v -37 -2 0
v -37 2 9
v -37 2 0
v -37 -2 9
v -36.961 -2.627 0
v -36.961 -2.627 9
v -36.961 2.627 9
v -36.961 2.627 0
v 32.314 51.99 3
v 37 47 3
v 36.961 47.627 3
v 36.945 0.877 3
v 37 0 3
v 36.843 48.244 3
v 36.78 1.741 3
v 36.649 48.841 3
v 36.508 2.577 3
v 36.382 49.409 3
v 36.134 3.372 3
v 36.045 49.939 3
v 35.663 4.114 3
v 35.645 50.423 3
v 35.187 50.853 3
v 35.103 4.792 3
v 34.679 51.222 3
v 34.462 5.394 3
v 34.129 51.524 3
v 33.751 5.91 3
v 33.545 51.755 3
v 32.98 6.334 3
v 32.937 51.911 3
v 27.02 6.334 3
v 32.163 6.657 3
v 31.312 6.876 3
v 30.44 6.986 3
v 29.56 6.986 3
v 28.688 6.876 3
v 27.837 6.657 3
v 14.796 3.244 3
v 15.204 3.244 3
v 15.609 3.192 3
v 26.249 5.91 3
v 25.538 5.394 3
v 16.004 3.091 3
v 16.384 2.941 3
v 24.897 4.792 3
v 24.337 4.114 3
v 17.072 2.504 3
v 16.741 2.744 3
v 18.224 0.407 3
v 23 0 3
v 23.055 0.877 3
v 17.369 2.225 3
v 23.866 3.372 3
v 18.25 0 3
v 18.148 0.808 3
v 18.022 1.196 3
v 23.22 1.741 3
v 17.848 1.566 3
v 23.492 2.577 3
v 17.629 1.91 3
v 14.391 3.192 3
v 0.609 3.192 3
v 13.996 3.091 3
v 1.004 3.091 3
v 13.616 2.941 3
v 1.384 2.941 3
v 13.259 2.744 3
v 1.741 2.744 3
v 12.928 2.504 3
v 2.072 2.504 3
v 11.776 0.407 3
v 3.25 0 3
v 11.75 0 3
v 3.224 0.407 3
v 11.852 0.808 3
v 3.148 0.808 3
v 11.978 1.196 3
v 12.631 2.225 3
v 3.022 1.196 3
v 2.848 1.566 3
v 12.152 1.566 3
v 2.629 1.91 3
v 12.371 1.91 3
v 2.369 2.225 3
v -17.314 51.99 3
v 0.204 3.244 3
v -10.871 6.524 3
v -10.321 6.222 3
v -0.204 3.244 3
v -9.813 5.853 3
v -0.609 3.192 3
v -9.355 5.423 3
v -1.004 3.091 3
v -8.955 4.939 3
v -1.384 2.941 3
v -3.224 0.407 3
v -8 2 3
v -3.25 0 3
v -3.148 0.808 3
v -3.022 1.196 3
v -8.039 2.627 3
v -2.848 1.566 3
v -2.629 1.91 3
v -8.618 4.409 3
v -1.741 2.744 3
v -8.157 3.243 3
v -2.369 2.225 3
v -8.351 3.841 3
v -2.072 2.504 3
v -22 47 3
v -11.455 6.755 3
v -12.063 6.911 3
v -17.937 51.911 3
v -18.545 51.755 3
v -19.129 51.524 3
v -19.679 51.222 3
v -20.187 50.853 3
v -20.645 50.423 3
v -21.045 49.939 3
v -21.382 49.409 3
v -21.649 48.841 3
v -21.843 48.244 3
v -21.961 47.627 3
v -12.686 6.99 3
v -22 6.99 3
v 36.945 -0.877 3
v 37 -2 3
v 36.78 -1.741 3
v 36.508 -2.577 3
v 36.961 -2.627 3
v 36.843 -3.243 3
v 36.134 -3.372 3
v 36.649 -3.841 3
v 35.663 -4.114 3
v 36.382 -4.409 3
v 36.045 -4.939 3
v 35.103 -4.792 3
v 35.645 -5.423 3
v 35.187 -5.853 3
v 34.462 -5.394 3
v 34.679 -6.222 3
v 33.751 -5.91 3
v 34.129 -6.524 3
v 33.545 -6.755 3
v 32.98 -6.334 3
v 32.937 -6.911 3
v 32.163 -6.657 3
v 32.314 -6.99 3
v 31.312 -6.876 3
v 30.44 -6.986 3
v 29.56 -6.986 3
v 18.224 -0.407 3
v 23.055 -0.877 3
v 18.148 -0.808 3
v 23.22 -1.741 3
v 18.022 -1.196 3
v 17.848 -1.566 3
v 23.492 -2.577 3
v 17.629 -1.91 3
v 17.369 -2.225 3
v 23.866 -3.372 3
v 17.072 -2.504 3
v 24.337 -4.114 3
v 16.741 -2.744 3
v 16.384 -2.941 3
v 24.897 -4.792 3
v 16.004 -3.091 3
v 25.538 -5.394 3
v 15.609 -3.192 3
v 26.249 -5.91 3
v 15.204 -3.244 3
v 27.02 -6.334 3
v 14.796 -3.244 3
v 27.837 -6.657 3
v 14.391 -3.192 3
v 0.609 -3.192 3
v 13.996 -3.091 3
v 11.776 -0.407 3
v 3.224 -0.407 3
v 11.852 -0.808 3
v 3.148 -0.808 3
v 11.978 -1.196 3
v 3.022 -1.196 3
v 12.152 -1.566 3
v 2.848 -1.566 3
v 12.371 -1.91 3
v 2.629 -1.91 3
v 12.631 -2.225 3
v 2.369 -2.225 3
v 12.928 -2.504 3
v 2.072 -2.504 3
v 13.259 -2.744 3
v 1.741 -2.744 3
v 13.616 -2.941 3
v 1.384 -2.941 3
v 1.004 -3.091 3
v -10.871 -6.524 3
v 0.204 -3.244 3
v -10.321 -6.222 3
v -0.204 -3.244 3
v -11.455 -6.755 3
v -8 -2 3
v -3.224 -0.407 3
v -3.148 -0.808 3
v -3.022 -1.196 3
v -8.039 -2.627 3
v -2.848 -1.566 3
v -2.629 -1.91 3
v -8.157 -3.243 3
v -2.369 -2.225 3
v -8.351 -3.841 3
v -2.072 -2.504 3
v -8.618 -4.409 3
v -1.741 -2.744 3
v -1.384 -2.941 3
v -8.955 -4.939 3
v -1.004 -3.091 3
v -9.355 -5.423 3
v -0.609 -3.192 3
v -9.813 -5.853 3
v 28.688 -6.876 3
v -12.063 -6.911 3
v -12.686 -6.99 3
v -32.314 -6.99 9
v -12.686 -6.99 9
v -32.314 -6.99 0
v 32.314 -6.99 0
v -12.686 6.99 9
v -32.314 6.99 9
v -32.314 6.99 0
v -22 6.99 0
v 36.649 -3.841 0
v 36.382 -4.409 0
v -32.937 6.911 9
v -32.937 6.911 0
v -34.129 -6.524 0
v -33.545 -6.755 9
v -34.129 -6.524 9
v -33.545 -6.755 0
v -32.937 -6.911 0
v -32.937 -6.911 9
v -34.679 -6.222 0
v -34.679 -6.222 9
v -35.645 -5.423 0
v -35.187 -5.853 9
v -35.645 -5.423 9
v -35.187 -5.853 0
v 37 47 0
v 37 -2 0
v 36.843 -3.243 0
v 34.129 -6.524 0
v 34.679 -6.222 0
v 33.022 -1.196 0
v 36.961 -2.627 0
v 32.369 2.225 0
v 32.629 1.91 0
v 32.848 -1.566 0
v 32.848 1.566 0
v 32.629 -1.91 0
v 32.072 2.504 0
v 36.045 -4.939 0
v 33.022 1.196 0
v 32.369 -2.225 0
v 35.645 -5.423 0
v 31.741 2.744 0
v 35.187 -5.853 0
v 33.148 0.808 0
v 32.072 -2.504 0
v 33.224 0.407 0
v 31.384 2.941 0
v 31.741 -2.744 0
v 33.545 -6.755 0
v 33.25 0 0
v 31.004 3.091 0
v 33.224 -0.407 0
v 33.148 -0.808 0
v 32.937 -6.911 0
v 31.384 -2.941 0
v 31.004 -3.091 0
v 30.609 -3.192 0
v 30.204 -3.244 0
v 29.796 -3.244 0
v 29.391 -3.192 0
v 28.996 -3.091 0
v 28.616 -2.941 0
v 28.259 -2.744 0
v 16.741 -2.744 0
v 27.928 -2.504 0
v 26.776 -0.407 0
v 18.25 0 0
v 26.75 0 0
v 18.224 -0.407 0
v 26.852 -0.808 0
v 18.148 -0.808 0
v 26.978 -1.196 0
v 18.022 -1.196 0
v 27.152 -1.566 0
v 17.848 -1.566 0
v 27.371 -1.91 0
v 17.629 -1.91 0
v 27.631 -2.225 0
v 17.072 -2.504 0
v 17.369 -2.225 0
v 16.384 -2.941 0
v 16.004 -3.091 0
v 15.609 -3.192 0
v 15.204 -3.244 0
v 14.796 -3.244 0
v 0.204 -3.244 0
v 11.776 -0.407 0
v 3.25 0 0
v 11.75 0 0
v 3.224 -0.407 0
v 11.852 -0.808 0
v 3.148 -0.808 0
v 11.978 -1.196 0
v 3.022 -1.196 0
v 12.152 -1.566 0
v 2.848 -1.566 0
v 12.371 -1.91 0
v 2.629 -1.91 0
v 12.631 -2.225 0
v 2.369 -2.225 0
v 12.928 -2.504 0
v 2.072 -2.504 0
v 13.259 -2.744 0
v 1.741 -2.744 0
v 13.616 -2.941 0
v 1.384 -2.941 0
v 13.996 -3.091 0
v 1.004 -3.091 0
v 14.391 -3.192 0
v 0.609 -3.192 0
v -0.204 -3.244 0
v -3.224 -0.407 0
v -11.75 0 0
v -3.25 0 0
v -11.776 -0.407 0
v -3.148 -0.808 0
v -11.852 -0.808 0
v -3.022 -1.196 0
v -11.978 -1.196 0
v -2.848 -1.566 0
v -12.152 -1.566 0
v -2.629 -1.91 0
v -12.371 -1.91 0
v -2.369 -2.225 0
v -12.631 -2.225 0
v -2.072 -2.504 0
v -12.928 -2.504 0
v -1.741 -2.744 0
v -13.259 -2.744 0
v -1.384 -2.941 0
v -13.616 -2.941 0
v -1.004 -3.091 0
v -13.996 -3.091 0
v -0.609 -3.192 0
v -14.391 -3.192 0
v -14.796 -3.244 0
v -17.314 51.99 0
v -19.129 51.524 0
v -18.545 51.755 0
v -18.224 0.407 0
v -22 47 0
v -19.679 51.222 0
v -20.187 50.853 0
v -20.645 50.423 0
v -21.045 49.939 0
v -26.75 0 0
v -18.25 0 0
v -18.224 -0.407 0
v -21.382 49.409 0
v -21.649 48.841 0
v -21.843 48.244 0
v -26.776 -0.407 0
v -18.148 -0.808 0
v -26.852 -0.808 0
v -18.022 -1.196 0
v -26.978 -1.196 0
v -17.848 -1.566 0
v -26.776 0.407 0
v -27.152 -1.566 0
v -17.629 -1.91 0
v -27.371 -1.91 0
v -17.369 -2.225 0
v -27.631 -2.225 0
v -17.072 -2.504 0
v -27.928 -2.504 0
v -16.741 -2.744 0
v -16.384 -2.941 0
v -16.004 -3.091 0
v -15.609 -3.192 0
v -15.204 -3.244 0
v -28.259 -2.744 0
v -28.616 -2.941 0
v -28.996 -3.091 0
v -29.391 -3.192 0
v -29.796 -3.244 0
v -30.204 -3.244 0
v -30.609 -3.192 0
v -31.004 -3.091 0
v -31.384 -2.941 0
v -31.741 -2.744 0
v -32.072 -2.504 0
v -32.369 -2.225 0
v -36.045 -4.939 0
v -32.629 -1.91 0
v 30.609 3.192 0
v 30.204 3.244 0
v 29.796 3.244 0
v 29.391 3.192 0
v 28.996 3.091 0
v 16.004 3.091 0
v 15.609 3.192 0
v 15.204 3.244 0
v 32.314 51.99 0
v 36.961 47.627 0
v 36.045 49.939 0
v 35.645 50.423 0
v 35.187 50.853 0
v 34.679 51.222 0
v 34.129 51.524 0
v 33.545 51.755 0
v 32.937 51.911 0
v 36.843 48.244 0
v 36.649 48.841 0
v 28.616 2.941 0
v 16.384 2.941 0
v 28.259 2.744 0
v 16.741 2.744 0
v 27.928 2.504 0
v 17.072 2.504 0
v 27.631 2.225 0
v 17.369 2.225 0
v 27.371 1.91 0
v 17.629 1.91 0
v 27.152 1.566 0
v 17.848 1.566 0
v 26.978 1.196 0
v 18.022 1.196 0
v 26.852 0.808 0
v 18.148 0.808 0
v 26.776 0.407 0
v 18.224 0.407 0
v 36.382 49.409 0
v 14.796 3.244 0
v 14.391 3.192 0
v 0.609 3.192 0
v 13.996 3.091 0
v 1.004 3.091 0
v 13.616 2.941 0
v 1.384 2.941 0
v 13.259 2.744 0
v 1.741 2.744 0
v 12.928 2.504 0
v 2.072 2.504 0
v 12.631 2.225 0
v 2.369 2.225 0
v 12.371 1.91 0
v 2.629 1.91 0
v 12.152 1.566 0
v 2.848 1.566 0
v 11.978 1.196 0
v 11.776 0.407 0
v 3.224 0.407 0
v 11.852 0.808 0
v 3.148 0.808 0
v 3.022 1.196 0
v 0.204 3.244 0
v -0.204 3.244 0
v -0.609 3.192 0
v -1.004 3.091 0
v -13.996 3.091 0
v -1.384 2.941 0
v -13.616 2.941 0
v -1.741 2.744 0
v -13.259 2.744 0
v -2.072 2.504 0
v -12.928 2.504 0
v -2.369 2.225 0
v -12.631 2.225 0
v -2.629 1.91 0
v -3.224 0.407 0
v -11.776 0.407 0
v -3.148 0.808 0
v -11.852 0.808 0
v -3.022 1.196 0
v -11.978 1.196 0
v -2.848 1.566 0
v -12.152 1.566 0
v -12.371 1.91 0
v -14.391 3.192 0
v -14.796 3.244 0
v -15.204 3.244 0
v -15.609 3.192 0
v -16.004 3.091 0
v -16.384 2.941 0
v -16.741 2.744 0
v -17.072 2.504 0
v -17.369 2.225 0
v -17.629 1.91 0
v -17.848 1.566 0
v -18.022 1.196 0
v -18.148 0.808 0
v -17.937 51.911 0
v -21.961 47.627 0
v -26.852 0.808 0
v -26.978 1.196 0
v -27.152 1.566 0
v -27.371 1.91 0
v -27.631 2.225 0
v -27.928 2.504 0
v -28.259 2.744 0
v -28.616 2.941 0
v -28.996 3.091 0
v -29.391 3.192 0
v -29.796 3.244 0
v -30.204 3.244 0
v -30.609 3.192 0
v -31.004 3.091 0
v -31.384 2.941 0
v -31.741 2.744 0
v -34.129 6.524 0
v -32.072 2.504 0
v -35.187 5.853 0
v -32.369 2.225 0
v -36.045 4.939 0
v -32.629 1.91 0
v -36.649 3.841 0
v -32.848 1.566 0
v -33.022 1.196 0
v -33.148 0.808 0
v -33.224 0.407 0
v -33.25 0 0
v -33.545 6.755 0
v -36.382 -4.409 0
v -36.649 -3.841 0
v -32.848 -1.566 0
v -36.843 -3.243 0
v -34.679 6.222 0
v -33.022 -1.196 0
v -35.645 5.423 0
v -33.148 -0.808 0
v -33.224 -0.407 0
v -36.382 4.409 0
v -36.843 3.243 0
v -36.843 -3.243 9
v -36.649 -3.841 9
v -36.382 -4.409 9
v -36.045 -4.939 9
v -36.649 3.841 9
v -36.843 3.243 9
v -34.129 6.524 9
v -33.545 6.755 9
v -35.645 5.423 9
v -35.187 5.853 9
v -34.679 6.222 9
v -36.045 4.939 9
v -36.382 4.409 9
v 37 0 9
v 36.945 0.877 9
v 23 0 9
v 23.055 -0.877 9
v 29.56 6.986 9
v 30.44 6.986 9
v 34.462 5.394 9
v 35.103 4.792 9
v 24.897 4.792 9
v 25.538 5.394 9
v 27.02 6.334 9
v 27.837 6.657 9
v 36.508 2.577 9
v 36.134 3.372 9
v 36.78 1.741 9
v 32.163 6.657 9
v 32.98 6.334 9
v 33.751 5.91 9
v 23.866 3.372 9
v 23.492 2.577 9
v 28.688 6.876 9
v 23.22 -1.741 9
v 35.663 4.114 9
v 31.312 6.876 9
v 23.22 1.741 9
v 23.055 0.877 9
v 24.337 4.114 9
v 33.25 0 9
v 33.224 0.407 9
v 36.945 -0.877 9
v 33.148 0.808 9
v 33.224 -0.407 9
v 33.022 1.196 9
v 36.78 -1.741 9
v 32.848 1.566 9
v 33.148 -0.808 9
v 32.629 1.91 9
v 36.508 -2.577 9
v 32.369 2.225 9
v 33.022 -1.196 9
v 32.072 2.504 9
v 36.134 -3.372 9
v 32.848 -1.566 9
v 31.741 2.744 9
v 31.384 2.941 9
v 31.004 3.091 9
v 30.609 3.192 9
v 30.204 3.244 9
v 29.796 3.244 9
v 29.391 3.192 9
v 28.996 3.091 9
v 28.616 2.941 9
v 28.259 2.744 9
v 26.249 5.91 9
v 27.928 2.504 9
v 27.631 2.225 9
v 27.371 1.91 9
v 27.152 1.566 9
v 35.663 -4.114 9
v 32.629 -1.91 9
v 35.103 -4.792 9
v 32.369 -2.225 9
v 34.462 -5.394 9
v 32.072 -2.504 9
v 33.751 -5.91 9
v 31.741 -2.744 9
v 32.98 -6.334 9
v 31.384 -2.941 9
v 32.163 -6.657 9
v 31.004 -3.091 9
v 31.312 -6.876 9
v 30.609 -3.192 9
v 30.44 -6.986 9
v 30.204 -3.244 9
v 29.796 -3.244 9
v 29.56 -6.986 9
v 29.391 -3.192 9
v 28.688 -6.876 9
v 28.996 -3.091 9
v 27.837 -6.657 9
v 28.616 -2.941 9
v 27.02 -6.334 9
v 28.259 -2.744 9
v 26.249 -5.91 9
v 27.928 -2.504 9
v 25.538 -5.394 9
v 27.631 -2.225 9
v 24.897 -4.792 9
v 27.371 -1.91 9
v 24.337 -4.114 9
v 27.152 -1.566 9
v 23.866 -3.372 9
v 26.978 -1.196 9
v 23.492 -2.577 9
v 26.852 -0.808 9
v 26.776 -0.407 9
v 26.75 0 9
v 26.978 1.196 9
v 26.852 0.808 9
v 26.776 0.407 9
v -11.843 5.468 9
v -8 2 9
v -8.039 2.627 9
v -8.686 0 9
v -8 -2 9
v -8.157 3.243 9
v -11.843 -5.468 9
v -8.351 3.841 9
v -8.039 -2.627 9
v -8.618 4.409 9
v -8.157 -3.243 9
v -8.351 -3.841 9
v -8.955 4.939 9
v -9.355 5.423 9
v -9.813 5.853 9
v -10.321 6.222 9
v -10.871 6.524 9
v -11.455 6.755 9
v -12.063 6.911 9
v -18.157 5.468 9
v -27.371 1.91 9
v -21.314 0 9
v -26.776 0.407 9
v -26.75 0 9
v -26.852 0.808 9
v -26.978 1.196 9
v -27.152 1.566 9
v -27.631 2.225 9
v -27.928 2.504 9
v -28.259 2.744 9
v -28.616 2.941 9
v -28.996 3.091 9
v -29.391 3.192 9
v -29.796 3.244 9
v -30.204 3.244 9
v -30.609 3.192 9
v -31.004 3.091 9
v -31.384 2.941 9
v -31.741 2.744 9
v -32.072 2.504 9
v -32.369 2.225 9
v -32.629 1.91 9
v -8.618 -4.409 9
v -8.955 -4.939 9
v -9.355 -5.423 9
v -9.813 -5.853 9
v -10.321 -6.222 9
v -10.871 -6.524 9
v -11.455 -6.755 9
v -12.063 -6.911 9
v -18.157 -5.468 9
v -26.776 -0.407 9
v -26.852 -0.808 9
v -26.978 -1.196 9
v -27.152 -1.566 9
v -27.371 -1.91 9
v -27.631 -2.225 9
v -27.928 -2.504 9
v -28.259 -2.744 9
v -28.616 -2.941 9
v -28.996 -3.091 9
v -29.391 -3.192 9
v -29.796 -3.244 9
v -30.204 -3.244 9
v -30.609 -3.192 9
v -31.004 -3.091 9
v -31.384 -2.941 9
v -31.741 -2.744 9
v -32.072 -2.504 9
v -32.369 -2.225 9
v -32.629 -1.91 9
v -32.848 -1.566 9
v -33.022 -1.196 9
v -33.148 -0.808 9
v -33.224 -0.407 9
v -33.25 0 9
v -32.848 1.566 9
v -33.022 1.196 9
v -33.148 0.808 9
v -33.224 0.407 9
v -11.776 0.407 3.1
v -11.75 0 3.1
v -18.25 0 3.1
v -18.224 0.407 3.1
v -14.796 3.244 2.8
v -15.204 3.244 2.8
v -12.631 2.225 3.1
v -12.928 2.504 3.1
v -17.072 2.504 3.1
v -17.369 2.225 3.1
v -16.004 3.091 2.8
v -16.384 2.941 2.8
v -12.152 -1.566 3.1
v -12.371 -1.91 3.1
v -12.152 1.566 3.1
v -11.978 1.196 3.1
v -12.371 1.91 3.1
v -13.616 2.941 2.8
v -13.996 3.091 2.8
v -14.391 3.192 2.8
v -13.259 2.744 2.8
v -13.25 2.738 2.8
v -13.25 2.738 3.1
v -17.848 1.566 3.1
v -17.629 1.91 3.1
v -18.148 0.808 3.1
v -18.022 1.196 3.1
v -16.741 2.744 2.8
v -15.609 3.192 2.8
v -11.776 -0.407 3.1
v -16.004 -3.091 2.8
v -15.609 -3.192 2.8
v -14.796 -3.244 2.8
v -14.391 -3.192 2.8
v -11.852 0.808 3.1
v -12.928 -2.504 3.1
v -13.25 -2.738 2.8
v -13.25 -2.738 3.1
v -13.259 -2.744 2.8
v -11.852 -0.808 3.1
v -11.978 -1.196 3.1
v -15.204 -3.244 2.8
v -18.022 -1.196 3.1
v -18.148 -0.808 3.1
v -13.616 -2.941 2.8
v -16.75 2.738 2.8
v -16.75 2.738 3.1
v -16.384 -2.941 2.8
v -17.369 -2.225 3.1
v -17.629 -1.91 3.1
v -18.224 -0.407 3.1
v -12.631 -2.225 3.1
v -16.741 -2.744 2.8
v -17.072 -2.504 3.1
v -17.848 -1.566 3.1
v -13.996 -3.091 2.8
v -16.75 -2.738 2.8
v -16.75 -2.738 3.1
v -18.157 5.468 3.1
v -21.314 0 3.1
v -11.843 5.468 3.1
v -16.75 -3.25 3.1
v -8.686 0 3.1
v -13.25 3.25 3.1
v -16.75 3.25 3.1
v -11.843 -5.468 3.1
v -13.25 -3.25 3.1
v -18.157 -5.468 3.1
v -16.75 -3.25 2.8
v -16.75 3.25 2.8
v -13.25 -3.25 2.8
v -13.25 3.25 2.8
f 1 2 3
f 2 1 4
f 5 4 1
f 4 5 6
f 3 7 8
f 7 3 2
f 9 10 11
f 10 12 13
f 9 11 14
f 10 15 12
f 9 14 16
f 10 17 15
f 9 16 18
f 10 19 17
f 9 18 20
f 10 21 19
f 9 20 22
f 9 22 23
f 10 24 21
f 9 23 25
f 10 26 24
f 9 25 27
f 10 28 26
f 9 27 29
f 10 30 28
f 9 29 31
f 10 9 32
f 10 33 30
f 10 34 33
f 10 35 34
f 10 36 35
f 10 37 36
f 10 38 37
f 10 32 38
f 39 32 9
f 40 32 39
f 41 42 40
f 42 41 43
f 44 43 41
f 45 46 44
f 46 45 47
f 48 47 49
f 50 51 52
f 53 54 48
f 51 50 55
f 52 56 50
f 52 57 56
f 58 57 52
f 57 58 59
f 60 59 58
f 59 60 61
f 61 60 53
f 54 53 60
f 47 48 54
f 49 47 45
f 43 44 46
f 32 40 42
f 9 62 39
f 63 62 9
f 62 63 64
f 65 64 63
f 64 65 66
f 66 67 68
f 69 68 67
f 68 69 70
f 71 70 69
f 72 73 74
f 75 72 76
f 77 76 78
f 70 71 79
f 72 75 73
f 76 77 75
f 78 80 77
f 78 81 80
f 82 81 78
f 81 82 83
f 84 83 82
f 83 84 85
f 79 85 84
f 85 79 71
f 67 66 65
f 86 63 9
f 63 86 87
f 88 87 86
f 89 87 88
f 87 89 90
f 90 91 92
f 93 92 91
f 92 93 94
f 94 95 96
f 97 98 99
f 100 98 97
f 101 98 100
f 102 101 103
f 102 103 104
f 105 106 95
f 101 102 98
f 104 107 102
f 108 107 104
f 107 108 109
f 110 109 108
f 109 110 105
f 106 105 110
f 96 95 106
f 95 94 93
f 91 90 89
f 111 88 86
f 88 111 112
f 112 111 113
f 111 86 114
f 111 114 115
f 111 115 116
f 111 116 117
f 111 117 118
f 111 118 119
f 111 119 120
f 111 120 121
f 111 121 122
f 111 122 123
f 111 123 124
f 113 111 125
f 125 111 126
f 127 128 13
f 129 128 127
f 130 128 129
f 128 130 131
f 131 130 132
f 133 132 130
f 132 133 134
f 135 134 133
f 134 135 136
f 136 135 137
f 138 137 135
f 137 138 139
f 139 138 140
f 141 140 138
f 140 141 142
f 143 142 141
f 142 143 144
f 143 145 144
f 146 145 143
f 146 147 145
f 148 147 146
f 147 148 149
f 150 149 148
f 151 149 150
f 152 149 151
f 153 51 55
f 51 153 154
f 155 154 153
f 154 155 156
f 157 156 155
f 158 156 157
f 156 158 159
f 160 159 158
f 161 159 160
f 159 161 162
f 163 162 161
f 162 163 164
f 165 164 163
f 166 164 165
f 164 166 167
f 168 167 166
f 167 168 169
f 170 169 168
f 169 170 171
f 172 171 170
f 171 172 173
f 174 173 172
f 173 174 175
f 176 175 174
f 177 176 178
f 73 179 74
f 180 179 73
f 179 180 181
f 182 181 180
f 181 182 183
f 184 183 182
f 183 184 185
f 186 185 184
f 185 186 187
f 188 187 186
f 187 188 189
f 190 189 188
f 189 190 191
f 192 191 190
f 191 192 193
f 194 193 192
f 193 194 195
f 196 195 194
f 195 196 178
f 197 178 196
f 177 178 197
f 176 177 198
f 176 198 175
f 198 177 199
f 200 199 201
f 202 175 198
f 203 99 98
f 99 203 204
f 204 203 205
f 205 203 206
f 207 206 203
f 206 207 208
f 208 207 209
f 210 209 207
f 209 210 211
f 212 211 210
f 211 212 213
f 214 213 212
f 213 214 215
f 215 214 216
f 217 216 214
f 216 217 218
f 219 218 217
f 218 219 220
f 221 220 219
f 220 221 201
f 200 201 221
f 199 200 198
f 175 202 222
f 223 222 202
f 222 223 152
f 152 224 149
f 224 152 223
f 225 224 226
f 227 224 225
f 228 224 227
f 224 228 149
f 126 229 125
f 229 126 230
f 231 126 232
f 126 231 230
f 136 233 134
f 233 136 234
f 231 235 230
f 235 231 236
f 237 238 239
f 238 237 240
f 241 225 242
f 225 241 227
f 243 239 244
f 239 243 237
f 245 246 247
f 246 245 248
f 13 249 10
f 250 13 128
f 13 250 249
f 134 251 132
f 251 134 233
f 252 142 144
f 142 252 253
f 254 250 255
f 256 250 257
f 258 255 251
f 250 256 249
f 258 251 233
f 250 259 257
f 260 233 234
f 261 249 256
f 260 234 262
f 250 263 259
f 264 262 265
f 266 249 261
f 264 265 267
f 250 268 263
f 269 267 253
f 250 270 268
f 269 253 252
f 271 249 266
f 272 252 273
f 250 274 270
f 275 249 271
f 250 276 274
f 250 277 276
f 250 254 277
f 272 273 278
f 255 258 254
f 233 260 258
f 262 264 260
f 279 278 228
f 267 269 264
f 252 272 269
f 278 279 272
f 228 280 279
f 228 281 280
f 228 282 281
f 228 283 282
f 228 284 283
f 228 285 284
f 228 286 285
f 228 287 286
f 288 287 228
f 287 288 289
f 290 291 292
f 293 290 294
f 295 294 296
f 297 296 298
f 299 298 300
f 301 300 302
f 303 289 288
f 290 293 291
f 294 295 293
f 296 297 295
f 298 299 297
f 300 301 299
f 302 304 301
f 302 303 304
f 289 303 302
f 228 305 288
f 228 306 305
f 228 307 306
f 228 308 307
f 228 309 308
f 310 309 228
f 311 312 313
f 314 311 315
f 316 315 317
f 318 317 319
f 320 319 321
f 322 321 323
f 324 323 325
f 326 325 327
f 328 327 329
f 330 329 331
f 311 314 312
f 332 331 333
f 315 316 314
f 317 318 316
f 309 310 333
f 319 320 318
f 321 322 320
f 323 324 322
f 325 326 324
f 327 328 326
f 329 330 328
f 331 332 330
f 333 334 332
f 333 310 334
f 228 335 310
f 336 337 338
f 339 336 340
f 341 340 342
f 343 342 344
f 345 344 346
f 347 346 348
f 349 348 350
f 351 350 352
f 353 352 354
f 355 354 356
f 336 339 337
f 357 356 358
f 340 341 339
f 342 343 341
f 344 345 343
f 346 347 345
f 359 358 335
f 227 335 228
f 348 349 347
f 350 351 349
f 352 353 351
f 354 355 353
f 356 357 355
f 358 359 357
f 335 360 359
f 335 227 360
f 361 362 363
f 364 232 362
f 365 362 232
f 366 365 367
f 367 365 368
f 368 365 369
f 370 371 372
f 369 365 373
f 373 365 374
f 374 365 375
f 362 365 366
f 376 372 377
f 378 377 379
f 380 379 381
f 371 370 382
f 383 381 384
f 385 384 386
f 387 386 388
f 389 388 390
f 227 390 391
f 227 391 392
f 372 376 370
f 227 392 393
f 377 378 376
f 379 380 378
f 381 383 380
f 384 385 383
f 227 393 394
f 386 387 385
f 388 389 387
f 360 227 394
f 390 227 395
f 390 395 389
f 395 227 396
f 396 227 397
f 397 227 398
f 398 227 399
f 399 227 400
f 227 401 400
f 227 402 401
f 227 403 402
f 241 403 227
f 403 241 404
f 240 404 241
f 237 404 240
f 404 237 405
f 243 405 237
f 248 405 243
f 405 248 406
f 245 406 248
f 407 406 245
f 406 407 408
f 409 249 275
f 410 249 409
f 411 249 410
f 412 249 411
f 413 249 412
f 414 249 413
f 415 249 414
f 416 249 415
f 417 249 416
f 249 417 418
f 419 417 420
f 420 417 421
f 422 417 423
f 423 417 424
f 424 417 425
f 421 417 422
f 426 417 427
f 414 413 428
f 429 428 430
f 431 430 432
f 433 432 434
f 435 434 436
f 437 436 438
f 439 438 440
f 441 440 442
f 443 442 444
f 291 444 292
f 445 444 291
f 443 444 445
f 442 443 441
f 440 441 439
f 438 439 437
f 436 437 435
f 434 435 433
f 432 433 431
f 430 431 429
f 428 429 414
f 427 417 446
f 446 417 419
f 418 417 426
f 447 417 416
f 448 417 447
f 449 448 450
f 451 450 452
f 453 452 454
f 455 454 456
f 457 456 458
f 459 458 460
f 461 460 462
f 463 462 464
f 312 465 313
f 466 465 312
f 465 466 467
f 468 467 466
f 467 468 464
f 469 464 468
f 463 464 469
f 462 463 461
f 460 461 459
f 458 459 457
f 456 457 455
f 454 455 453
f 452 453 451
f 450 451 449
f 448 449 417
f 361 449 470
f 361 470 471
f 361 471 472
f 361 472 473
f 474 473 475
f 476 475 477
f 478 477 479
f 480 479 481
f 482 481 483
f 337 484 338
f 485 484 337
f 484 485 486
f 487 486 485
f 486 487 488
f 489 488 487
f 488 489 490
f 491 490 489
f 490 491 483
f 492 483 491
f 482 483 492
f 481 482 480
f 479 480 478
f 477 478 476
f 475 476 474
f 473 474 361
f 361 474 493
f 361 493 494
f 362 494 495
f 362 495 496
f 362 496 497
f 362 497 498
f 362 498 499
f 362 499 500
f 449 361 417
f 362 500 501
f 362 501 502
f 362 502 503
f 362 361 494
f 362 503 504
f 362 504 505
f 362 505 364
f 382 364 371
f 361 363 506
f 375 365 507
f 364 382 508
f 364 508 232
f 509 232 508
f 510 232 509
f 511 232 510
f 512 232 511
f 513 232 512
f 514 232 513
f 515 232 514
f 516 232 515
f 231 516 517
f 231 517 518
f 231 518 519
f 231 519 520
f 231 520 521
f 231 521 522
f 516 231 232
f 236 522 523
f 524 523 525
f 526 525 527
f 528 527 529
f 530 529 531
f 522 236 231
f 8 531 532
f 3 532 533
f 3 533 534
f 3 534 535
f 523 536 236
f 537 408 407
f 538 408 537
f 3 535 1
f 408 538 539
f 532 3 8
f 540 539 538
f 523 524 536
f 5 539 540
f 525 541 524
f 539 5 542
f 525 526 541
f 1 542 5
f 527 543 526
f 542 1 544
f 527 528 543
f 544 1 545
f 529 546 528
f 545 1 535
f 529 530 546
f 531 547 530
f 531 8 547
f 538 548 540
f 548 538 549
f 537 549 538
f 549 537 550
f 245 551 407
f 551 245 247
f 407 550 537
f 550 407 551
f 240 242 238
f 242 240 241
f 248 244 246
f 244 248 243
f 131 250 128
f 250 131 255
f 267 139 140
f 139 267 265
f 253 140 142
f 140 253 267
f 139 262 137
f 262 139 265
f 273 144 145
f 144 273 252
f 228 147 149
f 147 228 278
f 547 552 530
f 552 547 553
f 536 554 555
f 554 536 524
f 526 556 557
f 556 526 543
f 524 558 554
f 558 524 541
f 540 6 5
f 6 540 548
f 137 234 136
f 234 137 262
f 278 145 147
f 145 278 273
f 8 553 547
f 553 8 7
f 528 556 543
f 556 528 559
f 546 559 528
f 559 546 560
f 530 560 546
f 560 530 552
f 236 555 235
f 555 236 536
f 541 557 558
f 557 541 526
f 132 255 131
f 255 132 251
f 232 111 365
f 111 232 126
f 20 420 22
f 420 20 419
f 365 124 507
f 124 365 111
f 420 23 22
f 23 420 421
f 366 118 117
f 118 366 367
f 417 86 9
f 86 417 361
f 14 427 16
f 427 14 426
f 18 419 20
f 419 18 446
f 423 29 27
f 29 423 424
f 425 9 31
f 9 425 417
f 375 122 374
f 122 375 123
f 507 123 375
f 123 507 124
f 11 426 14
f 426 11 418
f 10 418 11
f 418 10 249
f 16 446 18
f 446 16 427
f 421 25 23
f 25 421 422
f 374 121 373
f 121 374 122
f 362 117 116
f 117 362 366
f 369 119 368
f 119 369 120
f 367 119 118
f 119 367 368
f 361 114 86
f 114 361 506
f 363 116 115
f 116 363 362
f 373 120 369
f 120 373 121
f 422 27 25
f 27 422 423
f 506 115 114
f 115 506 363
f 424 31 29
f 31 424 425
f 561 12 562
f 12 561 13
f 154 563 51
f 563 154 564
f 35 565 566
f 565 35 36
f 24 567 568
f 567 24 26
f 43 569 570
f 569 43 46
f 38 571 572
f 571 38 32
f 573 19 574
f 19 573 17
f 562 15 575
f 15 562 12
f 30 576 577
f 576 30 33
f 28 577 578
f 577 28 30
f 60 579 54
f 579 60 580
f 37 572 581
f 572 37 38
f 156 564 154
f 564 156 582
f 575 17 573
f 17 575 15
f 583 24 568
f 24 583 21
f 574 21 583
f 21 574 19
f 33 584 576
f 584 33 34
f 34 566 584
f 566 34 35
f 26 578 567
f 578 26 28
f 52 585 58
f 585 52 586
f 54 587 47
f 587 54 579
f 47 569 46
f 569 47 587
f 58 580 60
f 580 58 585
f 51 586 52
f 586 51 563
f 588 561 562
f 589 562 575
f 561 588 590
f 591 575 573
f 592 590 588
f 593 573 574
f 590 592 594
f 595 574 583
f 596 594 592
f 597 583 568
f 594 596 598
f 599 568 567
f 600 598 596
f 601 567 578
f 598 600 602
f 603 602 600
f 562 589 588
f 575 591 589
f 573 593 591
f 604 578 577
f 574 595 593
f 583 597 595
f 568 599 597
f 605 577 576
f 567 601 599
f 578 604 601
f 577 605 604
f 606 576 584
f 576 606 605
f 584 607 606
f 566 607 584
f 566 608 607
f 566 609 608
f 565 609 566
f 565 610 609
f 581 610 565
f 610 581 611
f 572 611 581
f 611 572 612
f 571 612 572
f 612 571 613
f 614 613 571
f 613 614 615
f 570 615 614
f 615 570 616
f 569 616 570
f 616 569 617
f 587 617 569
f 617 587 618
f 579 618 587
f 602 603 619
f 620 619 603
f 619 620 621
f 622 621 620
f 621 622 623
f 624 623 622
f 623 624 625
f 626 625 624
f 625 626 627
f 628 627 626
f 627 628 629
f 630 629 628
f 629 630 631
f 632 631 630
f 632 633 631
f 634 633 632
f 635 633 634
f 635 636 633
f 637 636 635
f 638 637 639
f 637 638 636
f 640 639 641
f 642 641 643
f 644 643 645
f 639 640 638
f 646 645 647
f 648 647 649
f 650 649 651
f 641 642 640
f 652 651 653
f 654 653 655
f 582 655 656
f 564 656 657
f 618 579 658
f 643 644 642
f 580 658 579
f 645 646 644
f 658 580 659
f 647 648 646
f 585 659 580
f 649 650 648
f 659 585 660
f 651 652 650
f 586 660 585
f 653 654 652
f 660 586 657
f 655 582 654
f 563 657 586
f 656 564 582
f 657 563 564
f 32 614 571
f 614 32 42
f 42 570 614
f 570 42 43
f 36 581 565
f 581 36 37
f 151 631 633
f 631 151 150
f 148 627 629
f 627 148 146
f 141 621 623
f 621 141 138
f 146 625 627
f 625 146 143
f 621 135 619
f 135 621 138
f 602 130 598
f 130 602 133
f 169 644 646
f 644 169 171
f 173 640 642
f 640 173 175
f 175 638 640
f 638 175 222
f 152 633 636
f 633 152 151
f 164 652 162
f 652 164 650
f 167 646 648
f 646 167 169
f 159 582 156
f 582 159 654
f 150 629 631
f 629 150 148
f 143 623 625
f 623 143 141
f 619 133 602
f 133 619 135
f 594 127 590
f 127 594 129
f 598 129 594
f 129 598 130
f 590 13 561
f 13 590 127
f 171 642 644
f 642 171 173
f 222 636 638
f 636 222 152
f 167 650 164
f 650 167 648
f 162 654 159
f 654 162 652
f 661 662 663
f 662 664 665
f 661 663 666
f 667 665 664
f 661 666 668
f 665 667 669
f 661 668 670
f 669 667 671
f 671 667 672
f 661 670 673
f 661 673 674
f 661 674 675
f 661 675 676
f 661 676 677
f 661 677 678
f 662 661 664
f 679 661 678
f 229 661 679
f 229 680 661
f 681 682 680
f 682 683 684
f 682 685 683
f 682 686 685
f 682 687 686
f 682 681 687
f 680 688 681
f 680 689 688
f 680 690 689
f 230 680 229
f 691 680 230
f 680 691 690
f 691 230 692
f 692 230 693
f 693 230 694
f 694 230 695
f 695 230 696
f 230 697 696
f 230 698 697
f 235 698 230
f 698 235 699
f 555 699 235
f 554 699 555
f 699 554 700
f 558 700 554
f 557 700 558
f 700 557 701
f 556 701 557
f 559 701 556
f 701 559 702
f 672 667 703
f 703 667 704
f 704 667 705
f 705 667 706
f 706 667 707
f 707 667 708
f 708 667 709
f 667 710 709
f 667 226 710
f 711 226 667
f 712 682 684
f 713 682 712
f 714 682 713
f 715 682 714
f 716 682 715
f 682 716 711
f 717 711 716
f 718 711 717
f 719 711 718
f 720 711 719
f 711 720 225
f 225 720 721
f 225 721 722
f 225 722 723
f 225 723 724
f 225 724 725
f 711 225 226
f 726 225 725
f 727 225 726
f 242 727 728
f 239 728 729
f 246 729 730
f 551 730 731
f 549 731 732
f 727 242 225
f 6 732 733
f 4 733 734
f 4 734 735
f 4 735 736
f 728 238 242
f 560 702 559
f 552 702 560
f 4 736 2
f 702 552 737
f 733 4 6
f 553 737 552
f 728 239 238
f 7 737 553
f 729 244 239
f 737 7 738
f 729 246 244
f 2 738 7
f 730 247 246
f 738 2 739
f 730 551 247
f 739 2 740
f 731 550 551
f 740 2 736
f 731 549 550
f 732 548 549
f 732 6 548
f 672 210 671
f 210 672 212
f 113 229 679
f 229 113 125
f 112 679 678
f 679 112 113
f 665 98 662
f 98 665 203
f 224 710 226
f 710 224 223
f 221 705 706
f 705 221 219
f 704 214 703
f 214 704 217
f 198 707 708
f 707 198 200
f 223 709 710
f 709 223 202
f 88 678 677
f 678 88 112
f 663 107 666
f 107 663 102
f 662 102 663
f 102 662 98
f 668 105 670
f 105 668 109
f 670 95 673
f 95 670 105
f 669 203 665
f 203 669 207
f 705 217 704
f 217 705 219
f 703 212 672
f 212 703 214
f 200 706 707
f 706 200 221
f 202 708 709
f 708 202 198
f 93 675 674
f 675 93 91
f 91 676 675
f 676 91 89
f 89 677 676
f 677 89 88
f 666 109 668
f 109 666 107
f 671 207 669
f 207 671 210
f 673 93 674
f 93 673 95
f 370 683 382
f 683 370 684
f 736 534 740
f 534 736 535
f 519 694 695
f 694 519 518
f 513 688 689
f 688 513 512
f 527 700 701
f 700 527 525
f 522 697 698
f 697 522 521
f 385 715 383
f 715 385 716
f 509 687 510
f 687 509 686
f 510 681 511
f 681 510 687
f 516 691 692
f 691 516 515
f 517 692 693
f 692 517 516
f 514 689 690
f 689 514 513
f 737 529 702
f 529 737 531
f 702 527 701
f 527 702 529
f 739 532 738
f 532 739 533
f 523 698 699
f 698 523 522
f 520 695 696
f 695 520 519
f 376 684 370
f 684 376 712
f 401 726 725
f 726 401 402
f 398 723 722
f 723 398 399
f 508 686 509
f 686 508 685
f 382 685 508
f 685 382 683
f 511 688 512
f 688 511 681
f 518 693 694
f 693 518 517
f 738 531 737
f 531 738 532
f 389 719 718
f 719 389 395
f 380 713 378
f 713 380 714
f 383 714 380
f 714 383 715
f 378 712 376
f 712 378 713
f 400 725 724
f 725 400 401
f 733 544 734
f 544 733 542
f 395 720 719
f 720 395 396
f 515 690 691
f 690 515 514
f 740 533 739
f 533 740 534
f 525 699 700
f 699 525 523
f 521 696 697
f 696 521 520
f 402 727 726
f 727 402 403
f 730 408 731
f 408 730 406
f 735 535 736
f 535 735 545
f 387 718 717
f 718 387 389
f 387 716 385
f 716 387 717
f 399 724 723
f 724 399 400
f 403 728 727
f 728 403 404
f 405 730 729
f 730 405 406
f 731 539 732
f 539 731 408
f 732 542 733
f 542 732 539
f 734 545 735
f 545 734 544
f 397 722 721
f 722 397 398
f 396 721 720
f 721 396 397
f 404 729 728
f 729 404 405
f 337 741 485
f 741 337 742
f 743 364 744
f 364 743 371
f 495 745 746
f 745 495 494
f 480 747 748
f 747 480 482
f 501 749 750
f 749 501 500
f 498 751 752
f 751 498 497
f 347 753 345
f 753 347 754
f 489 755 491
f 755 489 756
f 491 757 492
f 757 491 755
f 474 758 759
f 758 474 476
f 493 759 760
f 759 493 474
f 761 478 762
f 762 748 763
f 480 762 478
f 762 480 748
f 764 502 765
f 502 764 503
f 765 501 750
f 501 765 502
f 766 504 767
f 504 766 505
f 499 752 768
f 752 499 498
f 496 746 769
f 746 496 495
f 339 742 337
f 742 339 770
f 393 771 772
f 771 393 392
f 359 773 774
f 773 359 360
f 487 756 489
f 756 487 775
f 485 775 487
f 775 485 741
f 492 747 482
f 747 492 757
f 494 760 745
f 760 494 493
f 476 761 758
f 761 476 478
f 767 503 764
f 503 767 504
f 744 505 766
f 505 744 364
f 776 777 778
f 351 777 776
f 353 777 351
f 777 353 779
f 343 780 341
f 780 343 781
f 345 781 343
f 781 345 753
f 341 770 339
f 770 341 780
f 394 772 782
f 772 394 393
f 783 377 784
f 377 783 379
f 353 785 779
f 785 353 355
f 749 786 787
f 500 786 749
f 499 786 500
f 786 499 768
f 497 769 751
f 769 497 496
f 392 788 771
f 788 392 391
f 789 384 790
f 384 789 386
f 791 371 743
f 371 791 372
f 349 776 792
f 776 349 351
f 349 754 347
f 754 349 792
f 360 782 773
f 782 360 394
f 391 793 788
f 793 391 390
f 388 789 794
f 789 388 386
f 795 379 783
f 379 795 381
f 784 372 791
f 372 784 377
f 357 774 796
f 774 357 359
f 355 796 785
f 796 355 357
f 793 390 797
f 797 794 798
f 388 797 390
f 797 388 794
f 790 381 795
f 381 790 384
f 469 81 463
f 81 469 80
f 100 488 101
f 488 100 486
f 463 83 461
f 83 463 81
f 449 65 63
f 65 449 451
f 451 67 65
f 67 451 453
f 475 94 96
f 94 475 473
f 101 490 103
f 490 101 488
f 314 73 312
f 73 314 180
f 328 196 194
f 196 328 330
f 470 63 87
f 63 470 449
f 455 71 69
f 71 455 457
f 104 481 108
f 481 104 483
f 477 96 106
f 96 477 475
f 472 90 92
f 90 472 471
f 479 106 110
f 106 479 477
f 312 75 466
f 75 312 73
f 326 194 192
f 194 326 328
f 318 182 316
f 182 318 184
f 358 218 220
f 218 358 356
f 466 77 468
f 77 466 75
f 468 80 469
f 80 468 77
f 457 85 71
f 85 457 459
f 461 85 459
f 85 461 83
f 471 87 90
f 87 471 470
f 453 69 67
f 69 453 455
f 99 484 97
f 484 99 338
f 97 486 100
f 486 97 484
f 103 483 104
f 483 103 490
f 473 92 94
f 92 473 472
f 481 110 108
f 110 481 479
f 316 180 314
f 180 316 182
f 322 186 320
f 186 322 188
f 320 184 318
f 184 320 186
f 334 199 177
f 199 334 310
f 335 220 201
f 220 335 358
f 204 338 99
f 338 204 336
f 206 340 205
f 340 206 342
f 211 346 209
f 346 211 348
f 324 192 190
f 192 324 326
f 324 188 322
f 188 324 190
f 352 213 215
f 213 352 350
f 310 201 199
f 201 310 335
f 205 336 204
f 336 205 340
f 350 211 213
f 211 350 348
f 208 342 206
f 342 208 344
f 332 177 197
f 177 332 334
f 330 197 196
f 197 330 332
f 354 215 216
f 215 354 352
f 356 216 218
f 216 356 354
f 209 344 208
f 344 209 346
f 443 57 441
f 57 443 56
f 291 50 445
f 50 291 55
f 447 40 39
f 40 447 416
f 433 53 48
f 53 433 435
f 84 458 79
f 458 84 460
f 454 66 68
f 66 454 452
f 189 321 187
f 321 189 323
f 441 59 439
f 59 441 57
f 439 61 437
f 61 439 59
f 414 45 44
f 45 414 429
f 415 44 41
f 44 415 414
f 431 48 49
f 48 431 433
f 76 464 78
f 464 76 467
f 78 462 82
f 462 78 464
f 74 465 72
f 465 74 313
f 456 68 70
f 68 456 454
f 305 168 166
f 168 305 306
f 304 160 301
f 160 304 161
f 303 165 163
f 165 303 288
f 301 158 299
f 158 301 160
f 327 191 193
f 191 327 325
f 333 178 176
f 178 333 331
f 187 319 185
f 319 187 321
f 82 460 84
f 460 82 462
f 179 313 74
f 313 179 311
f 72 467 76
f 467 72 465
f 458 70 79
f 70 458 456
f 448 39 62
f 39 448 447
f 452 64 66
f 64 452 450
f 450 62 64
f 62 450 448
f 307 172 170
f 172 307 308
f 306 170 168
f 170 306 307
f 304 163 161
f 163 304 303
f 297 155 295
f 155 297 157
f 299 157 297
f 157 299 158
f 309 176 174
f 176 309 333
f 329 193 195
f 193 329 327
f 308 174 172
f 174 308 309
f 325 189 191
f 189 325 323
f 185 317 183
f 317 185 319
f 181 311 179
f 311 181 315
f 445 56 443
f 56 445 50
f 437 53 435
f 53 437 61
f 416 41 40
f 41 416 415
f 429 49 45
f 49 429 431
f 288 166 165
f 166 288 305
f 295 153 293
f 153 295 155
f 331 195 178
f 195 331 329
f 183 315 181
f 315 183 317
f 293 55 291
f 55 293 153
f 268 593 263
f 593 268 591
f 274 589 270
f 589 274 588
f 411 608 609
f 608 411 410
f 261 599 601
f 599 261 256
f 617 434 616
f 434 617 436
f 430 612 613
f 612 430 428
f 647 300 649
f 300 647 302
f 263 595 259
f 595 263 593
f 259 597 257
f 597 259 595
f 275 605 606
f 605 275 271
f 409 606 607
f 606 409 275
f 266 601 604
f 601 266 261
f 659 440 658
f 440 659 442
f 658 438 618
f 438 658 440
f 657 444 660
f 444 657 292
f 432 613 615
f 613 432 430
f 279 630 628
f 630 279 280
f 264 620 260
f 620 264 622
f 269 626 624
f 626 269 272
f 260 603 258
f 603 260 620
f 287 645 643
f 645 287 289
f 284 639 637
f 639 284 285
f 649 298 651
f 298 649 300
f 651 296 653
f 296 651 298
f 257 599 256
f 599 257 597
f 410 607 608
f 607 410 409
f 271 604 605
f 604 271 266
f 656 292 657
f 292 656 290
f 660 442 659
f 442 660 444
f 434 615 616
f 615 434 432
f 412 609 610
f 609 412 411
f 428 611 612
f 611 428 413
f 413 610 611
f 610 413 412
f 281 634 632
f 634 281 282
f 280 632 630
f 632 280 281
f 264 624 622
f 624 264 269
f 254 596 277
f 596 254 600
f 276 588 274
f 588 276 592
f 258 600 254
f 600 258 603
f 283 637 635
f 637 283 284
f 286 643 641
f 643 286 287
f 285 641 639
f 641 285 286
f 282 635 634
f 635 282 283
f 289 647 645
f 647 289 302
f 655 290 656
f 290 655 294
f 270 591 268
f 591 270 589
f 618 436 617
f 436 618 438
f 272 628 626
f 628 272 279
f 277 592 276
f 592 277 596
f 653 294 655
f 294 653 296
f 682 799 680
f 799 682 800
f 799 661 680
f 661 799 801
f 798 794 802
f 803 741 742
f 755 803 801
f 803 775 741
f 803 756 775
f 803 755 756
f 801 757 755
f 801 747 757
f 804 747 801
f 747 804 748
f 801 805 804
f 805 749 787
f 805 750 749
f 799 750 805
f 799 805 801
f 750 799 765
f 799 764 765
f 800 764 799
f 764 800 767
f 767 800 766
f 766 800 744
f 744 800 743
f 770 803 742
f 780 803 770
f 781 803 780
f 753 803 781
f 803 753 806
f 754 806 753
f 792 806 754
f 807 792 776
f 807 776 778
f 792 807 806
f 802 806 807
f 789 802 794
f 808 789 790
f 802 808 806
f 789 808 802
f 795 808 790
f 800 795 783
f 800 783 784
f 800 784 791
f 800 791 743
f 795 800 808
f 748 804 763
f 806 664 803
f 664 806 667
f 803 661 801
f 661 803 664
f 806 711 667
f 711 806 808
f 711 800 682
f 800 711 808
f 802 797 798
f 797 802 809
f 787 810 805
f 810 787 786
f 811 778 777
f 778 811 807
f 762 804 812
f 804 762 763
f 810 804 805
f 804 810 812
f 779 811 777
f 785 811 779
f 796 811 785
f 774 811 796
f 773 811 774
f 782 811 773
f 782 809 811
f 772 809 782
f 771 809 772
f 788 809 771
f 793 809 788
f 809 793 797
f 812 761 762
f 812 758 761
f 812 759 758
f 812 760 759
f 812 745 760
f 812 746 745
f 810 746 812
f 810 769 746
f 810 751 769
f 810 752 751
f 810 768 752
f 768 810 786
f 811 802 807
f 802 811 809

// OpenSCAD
$fn = 50;


difference() {
	union() {
		translate(v = [0, 0, 0]) {
			rotate(a = [0, 0, 0]) {
				hull() {
					translate(v = [-32.0000000000, 2.0000000000, 0]) {
						rotate(a = [0, 0, 0]) {
							translate(v = [0, 0, 0]) {
								rotate(a = [0, 0, 0]) {
									cylinder(h = 3, r = 5);
								}
							}
						}
					}
					translate(v = [32.0000000000, 2.0000000000, 0]) {
						rotate(a = [0, 0, 0]) {
							translate(v = [0, 0, 0]) {
								rotate(a = [0, 0, 0]) {
									cylinder(h = 3, r = 5);
								}
							}
						}
					}
					translate(v = [-32.0000000000, -2.0000000000, 0]) {
						rotate(a = [0, 0, 0]) {
							translate(v = [0, 0, 0]) {
								rotate(a = [0, 0, 0]) {
									cylinder(h = 3, r = 5);
								}
							}
						}
					}
					translate(v = [32.0000000000, -2.0000000000, 0]) {
						rotate(a = [0, 0, 0]) {
							translate(v = [0, 0, 0]) {
								rotate(a = [0, 0, 0]) {
									cylinder(h = 3, r = 5);
								}
							}
						}
					}
				}
			}
		}
		translate(v = [7.5000000000, 22.5000000000, 0]) {
			rotate(a = [0, 0, 0]) {
				hull() {
					translate(v = [-24.5000000000, 24.5000000000, 0]) {
						rotate(a = [0, 0, 0]) {
							translate(v = [0, 0, 0]) {
								rotate(a = [0, 0, 0]) {
									cylinder(h = 3, r = 5);
								}
							}
						}
					}
					translate(v = [24.5000000000, 24.5000000000, 0]) {
						rotate(a = [0, 0, 0]) {
							translate(v = [0, 0, 0]) {
								rotate(a = [0, 0, 0]) {
									cylinder(h = 3, r = 5);
								}
							}
						}
					}
					translate(v = [-24.5000000000, -24.5000000000, 0]) {
						rotate(a = [0, 0, 0]) {
							translate(v = [0, 0, 0]) {
								rotate(a = [0, 0, 0]) {
									cylinder(h = 3, r = 5);
								}
							}
						}
					}
					translate(v = [24.5000000000, -24.5000000000, 0]) {
						rotate(a = [0, 0, 0]) {
							translate(v = [0, 0, 0]) {
								rotate(a = [0, 0, 0]) {
									cylinder(h = 3, r = 5);
								}
							}
						}
					}
				}
			}
		}
		translate(v = [30.0000000000, 0, 0]) {
			rotate(a = [0, 0, 0]) {
				cylinder(h = 9, r = 7.0000000000);
			}
		}
		translate(v = [-22.5000000000, 0, 0]) {
			rotate(a = [0, 0, 0]) {
				hull() {
					translate(v = [-9.5000000000, 2.0000000000, 0]) {
						rotate(a = [0, 0, 0]) {
							translate(v = [0, 0, 0]) {
								rotate(a = [0, 0, 0]) {
									cylinder(h = 9, r = 5);
								}
							}
						}
					}
					translate(v = [9.5000000000, 2.0000000000, 0]) {
						rotate(a = [0, 0, 0]) {
							translate(v = [0, 0, 0]) {
								rotate(a = [0, 0, 0]) {
									cylinder(h = 9, r = 5);
								}
							}
						}
					}
					translate(v = [-9.5000000000, -2.0000000000, 0]) {
						rotate(a = [0, 0, 0]) {
							translate(v = [0, 0, 0]) {
								rotate(a = [0, 0, 0]) {
									cylinder(h = 9, r = 5);
								}
							}
						}
					}
					translate(v = [9.5000000000, -2.0000000000, 0]) {
						rotate(a = [0, 0, 0]) {
							translate(v = [0, 0, 0]) {
								rotate(a = [0, 0, 0]) {
									cylinder(h = 9, r = 5);
								}
							}
						}
					}
				}
			}
		}
	}
	union() {
		translate(v = [-30.0000000000, 0.0000000000, 0]) {
			rotate(a = [0, 0, 0]) {
				translate(v = [0, 0, -50]) {
					rotate(a = [0, 0, 0]) {
						cylinder(h = 100, r = 3.2500000000);
					}
				}
			}
		}
		translate(v = [-15.0000000000, 0.0000000000, 0]) {
			rotate(a = [0, 0, 0]) {
				translate(v = [0, 0, -50]) {
					rotate(a = [0, 0, 0]) {
						cylinder(h = 100, r = 3.2500000000);
					}
				}
			}
		}
		translate(v = [0.0000000000, 0.0000000000, 0]) {
			rotate(a = [0, 0, 0]) {
				translate(v = [0, 0, -50]) {
					rotate(a = [0, 0, 0]) {
						cylinder(h = 100, r = 3.2500000000);
					}
				}
			}
		}
		translate(v = [15.0000000000, 0.0000000000, 0]) {
			rotate(a = [0, 0, 0]) {
				translate(v = [0, 0, -50]) {
					rotate(a = [0, 0, 0]) {
						cylinder(h = 100, r = 3.2500000000);
					}
				}
			}
		}
		translate(v = [30.0000000000, 0.0000000000, 0]) {
			rotate(a = [0, 0, 0]) {
				translate(v = [0, 0, -50]) {
					rotate(a = [0, 0, 0]) {
						cylinder(h = 100, r = 3.2500000000);
					}
				}
			}
		}
		translate(v = [-15.0000000000, 0, 3.1000000000]) {
			rotate(a = [0, 0, 0]) {
				translate(v = [0, 0, 0]) {
					rotate(a = [0, 0, 0]) {
						linear_extrude(height = 5.9000000000) {
							polygon(points = [[6.3142500000, 0.0000000000], [3.1571250000, 5.4683009058], [-3.1571250000, 5.4683009058], [-6.3142500000, 0.0000000000], [-3.1571250000, -5.4683009058], [3.1571250000, -5.4683009058]]);
						}
					}
				}
			}
		}
		translate(v = [-16.7500000000, -3.2500000000, 9.0000000000]) {
			rotate(a = [0, 0, 0]) {
				cube(size = [3.5000000000, 6.5000000000, 0.3000000000]);
			}
		}
		translate(v = [-16.7500000000, -1.7500000000, 9.3000000000]) {
			rotate(a = [0, 0, 0]) {
				cube(size = [3.5000000000, 3.5000000000, 0.3000000000]);
			}
		}
		translate(v = [-16.7500000000, -3.2500000000, 2.8000000000]) {
			rotate(a = [0, 0, 0]) {
				cube(size = [3.5000000000, 6.5000000000, 0.3000000000]);
			}
		}
		translate(v = [-16.7500000000, -1.7500000000, 2.5000000000]) {
			rotate(a = [0, 0, 0]) {
				cube(size = [3.5000000000, 3.5000000000, 0.3000000000]);
			}
		}
	}
}
